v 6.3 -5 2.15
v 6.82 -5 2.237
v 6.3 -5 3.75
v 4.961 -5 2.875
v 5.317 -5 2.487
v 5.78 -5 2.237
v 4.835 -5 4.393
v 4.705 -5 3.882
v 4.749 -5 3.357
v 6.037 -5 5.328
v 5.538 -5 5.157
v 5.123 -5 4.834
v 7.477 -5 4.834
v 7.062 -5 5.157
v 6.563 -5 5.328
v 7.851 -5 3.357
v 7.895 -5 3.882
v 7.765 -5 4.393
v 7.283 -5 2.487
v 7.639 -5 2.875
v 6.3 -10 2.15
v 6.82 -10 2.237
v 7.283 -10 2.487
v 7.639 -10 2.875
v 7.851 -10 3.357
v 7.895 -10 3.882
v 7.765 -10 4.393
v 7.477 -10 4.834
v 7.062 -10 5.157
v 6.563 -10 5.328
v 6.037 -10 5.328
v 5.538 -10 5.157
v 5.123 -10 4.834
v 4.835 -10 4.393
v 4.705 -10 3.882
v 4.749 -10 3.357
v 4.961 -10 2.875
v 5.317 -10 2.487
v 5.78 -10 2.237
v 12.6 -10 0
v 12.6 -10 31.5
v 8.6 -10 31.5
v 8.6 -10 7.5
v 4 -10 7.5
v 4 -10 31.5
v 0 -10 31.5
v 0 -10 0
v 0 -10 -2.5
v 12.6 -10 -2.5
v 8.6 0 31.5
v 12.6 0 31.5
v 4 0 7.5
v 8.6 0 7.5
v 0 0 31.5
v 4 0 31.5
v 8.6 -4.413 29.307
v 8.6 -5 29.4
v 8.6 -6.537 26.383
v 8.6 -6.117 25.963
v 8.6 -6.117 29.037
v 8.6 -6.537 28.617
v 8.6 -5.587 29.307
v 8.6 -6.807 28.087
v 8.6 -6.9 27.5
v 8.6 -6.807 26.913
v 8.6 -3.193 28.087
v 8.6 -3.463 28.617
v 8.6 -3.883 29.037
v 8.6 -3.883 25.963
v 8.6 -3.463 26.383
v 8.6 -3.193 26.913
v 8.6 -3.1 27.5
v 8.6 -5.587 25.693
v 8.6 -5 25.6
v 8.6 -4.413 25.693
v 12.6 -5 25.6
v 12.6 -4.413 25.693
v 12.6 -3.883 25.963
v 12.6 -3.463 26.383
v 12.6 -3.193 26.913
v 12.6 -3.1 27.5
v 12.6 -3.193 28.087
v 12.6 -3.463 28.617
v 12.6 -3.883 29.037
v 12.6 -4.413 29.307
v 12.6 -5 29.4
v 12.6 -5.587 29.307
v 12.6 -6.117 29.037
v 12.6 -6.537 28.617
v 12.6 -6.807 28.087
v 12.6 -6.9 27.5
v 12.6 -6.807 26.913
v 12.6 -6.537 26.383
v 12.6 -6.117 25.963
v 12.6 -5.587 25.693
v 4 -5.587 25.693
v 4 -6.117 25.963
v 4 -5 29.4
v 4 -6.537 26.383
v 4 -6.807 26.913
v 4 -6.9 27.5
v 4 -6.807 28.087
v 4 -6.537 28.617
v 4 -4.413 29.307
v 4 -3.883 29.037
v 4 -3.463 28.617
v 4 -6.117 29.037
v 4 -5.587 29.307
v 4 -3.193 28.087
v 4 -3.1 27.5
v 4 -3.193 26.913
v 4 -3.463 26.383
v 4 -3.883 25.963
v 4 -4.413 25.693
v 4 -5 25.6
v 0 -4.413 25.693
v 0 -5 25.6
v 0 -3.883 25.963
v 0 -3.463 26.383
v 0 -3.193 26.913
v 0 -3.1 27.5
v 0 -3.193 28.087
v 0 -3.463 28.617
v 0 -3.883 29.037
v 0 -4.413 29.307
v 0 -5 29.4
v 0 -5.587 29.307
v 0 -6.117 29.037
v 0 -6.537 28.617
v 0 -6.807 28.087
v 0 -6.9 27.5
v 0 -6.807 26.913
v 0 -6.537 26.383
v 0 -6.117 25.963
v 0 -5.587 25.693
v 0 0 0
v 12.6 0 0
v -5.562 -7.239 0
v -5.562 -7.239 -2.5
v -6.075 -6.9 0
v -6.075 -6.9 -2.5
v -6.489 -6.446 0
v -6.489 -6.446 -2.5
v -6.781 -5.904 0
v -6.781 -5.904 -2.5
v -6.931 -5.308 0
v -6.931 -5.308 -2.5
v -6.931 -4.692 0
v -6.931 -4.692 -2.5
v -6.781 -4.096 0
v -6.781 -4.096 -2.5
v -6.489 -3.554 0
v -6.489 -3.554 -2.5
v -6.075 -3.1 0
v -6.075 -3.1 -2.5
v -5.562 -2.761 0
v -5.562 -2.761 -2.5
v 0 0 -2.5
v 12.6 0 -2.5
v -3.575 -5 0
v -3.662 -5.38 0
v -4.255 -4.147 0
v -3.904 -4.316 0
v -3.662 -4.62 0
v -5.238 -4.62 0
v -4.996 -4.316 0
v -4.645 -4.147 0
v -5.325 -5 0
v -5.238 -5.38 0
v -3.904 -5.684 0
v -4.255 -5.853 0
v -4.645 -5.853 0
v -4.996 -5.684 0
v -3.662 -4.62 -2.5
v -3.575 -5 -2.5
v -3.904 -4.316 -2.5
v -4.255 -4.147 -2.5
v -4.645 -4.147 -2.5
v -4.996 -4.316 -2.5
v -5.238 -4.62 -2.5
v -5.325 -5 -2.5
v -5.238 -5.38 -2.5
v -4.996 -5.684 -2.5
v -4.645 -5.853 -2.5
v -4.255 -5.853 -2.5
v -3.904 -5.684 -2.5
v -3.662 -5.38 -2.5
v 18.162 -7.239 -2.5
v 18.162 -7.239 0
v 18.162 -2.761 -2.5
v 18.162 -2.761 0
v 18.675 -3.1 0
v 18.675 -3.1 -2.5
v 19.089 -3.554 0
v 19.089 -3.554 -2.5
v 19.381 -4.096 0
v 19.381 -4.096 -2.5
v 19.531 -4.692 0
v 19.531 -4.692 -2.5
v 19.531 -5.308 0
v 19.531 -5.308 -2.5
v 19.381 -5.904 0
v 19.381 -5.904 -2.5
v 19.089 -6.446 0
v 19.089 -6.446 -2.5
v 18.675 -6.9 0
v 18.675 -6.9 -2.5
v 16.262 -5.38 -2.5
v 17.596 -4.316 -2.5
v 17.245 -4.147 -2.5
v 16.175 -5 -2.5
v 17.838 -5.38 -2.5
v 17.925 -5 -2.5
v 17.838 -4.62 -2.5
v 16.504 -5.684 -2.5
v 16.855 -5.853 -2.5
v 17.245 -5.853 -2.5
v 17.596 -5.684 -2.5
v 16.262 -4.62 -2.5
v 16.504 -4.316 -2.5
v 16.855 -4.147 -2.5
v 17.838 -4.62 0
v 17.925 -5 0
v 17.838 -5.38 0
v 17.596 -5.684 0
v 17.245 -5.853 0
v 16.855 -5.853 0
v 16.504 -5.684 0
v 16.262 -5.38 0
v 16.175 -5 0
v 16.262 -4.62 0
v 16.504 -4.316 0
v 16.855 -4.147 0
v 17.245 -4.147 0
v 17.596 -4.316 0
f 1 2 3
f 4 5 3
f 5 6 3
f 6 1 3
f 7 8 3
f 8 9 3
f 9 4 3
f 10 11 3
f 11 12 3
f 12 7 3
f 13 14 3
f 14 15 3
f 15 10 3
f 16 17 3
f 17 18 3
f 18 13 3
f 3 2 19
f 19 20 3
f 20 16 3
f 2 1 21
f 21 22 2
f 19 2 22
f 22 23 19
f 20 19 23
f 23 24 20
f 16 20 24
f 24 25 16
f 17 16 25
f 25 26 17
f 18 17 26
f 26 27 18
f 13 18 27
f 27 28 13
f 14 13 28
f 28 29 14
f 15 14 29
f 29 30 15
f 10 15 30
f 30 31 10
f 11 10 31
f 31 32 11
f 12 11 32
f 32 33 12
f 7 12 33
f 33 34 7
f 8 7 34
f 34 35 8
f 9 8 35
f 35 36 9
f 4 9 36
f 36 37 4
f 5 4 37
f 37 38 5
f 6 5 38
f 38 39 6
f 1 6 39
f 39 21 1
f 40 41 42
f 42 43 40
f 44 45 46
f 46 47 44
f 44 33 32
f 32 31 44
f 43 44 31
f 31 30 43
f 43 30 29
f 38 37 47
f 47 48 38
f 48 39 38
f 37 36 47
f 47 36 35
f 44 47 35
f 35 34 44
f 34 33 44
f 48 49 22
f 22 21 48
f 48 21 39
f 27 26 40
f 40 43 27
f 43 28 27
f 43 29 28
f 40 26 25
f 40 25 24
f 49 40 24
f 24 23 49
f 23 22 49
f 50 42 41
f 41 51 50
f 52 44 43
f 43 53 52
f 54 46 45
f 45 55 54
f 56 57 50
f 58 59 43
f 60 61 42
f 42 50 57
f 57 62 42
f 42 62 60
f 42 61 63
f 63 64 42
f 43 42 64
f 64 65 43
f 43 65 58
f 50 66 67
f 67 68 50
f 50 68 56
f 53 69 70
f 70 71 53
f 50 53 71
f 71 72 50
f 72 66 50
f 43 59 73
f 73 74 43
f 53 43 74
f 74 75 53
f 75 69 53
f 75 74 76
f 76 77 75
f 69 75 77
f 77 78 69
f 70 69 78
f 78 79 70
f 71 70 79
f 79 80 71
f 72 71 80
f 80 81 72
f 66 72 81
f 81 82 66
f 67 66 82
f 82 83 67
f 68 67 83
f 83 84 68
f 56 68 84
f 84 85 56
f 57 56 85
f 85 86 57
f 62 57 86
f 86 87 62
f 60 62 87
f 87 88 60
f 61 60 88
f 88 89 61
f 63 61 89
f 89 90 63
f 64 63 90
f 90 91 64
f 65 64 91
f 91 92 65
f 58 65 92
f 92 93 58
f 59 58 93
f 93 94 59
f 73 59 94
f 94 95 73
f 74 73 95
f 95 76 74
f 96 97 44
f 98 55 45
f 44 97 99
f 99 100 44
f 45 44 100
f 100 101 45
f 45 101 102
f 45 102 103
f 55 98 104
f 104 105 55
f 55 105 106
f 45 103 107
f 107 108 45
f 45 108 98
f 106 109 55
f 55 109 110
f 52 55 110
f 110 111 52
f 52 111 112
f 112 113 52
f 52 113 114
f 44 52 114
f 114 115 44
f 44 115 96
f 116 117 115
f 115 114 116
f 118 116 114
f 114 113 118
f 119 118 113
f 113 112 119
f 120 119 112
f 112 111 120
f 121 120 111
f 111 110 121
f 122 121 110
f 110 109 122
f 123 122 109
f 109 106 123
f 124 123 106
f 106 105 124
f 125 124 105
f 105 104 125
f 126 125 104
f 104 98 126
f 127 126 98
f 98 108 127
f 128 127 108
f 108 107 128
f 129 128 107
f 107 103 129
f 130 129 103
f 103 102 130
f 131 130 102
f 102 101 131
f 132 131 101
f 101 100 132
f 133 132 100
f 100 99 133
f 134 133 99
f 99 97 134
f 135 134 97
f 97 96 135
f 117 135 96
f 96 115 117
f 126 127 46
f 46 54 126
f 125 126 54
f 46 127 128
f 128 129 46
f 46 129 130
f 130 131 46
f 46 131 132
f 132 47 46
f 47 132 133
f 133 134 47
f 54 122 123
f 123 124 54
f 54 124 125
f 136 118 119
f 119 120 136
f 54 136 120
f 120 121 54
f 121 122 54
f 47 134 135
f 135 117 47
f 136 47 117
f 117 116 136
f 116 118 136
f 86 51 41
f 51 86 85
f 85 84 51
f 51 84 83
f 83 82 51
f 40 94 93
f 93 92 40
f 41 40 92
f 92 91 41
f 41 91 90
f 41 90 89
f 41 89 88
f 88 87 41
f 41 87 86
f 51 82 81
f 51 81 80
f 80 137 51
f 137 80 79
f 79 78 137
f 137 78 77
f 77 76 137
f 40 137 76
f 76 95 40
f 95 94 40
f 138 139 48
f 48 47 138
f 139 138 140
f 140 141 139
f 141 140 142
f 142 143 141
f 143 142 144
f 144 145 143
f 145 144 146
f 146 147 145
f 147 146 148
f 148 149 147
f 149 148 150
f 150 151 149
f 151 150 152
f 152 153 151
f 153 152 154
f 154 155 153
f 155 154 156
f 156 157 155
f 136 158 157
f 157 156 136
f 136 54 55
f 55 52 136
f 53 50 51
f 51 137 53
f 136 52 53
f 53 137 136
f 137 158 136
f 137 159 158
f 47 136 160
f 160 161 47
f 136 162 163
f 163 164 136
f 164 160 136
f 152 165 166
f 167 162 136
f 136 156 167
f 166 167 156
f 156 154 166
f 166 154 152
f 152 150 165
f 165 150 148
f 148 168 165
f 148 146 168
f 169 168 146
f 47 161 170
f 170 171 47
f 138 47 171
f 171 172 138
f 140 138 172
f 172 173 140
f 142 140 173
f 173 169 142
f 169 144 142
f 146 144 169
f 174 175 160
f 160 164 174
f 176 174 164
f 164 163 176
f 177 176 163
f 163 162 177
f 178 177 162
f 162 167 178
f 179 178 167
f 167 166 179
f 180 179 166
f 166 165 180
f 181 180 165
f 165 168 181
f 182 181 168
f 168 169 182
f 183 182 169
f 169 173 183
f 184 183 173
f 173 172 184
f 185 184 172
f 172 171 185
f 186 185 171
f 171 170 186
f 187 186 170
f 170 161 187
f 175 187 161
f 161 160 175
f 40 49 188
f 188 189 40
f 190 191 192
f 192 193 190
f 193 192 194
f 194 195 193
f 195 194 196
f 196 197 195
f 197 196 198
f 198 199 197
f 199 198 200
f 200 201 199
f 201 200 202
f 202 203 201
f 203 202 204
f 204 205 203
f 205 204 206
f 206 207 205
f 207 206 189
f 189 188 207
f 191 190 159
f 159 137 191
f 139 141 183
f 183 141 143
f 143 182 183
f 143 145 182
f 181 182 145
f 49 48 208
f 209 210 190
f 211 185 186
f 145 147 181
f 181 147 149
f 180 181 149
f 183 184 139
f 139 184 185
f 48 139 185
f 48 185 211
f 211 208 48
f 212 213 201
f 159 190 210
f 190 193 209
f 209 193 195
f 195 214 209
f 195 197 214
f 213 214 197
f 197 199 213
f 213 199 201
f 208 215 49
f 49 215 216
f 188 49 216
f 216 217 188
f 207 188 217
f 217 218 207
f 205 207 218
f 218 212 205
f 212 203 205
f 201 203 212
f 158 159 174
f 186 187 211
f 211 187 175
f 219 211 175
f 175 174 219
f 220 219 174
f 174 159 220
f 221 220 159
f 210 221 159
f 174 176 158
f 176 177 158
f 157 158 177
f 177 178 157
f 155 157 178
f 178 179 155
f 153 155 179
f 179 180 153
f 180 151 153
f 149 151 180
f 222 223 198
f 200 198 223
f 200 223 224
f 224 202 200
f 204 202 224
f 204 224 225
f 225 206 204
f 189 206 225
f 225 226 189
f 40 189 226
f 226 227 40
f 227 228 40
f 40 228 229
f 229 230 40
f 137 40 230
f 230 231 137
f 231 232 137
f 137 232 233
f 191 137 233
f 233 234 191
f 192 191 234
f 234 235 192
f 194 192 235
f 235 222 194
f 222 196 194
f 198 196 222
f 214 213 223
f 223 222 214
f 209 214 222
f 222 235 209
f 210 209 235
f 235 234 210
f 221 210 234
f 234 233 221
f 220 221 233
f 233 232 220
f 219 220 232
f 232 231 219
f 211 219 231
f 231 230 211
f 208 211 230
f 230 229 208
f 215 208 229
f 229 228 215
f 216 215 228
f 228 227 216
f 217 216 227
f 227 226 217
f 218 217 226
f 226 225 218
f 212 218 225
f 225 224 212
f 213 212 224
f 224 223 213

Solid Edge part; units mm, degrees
sketch "Sketch1" plane through (0, 0, 0) normal (0, -1, 0) x (1, 0, 0)
  line L0 (8.6, 31.5) -> (8.6, 7.5)
  line L1 (8.6, 7.5) -> (4, 7.5)
  line L2 (4, 7.5) -> (4, 31.5)
  line L3 (4, 31.5) -> (0, 31.5)
  line L4 (0, 31.5) -> (0, 0)
  line L5 (0, 0) -> (12.6, 0)
  line L6 (12.6, 0) -> (12.6, 31.5)
  line L7 (12.6, 31.5) -> (8.6, 31.5)
extrude "Protrusion1" add sketch "Sketch1" along normal blind 10
sketch "Sketch2" plane through (12.6, -5, 7.5) normal (1, 0, 0) x (0, 1, 0)
  circle A0 centre (0, 20) radius 1.9
extrude "Cutout1" cut sketch "Sketch2" against normal through all
sketch "Sketch3" plane through (6.3, -5, 0) normal (0, 0, -1) x (1, 0, 0)
  line L0 (-6.3, -5) -> (-11.8616, -2.2393)
  line L1 (-6.3, 5) -> (-11.8616, 2.2393)
  line L2 (-6.3, 5) -> (6.3, 5)
  line L3 (6.3, 5) -> (11.8616, 2.2393)
  line L4 (6.3, -5) -> (11.8616, -2.2393)
  line L5 (-6.3, -5) -> (6.3, -5)
  arc A0 (-11.8616, -2.2393) -> (-11.8616, 2.2393) centre (-10.75, 0) cw
  arc A1 (11.8616, 2.2393) -> (11.8616, -2.2393) centre (10.75, 0) cw
  circle A2 centre (-10.75, 0) radius 0.875
  circle A3 centre (10.75, 0) radius 0.875
extrude "ExtrudedProtrusion_4" add sketch "Sketch3" along normal blind 2.5
sketch "Sketch4" plane through (6.3, -10, 8) normal (0, -1, 0) x (0, 0, -1)
  circle A0 centre (4.25, 0) radius 1.6
extrude "ExtrudedCutout_2" cut sketch "Sketch4" against normal blind 5
